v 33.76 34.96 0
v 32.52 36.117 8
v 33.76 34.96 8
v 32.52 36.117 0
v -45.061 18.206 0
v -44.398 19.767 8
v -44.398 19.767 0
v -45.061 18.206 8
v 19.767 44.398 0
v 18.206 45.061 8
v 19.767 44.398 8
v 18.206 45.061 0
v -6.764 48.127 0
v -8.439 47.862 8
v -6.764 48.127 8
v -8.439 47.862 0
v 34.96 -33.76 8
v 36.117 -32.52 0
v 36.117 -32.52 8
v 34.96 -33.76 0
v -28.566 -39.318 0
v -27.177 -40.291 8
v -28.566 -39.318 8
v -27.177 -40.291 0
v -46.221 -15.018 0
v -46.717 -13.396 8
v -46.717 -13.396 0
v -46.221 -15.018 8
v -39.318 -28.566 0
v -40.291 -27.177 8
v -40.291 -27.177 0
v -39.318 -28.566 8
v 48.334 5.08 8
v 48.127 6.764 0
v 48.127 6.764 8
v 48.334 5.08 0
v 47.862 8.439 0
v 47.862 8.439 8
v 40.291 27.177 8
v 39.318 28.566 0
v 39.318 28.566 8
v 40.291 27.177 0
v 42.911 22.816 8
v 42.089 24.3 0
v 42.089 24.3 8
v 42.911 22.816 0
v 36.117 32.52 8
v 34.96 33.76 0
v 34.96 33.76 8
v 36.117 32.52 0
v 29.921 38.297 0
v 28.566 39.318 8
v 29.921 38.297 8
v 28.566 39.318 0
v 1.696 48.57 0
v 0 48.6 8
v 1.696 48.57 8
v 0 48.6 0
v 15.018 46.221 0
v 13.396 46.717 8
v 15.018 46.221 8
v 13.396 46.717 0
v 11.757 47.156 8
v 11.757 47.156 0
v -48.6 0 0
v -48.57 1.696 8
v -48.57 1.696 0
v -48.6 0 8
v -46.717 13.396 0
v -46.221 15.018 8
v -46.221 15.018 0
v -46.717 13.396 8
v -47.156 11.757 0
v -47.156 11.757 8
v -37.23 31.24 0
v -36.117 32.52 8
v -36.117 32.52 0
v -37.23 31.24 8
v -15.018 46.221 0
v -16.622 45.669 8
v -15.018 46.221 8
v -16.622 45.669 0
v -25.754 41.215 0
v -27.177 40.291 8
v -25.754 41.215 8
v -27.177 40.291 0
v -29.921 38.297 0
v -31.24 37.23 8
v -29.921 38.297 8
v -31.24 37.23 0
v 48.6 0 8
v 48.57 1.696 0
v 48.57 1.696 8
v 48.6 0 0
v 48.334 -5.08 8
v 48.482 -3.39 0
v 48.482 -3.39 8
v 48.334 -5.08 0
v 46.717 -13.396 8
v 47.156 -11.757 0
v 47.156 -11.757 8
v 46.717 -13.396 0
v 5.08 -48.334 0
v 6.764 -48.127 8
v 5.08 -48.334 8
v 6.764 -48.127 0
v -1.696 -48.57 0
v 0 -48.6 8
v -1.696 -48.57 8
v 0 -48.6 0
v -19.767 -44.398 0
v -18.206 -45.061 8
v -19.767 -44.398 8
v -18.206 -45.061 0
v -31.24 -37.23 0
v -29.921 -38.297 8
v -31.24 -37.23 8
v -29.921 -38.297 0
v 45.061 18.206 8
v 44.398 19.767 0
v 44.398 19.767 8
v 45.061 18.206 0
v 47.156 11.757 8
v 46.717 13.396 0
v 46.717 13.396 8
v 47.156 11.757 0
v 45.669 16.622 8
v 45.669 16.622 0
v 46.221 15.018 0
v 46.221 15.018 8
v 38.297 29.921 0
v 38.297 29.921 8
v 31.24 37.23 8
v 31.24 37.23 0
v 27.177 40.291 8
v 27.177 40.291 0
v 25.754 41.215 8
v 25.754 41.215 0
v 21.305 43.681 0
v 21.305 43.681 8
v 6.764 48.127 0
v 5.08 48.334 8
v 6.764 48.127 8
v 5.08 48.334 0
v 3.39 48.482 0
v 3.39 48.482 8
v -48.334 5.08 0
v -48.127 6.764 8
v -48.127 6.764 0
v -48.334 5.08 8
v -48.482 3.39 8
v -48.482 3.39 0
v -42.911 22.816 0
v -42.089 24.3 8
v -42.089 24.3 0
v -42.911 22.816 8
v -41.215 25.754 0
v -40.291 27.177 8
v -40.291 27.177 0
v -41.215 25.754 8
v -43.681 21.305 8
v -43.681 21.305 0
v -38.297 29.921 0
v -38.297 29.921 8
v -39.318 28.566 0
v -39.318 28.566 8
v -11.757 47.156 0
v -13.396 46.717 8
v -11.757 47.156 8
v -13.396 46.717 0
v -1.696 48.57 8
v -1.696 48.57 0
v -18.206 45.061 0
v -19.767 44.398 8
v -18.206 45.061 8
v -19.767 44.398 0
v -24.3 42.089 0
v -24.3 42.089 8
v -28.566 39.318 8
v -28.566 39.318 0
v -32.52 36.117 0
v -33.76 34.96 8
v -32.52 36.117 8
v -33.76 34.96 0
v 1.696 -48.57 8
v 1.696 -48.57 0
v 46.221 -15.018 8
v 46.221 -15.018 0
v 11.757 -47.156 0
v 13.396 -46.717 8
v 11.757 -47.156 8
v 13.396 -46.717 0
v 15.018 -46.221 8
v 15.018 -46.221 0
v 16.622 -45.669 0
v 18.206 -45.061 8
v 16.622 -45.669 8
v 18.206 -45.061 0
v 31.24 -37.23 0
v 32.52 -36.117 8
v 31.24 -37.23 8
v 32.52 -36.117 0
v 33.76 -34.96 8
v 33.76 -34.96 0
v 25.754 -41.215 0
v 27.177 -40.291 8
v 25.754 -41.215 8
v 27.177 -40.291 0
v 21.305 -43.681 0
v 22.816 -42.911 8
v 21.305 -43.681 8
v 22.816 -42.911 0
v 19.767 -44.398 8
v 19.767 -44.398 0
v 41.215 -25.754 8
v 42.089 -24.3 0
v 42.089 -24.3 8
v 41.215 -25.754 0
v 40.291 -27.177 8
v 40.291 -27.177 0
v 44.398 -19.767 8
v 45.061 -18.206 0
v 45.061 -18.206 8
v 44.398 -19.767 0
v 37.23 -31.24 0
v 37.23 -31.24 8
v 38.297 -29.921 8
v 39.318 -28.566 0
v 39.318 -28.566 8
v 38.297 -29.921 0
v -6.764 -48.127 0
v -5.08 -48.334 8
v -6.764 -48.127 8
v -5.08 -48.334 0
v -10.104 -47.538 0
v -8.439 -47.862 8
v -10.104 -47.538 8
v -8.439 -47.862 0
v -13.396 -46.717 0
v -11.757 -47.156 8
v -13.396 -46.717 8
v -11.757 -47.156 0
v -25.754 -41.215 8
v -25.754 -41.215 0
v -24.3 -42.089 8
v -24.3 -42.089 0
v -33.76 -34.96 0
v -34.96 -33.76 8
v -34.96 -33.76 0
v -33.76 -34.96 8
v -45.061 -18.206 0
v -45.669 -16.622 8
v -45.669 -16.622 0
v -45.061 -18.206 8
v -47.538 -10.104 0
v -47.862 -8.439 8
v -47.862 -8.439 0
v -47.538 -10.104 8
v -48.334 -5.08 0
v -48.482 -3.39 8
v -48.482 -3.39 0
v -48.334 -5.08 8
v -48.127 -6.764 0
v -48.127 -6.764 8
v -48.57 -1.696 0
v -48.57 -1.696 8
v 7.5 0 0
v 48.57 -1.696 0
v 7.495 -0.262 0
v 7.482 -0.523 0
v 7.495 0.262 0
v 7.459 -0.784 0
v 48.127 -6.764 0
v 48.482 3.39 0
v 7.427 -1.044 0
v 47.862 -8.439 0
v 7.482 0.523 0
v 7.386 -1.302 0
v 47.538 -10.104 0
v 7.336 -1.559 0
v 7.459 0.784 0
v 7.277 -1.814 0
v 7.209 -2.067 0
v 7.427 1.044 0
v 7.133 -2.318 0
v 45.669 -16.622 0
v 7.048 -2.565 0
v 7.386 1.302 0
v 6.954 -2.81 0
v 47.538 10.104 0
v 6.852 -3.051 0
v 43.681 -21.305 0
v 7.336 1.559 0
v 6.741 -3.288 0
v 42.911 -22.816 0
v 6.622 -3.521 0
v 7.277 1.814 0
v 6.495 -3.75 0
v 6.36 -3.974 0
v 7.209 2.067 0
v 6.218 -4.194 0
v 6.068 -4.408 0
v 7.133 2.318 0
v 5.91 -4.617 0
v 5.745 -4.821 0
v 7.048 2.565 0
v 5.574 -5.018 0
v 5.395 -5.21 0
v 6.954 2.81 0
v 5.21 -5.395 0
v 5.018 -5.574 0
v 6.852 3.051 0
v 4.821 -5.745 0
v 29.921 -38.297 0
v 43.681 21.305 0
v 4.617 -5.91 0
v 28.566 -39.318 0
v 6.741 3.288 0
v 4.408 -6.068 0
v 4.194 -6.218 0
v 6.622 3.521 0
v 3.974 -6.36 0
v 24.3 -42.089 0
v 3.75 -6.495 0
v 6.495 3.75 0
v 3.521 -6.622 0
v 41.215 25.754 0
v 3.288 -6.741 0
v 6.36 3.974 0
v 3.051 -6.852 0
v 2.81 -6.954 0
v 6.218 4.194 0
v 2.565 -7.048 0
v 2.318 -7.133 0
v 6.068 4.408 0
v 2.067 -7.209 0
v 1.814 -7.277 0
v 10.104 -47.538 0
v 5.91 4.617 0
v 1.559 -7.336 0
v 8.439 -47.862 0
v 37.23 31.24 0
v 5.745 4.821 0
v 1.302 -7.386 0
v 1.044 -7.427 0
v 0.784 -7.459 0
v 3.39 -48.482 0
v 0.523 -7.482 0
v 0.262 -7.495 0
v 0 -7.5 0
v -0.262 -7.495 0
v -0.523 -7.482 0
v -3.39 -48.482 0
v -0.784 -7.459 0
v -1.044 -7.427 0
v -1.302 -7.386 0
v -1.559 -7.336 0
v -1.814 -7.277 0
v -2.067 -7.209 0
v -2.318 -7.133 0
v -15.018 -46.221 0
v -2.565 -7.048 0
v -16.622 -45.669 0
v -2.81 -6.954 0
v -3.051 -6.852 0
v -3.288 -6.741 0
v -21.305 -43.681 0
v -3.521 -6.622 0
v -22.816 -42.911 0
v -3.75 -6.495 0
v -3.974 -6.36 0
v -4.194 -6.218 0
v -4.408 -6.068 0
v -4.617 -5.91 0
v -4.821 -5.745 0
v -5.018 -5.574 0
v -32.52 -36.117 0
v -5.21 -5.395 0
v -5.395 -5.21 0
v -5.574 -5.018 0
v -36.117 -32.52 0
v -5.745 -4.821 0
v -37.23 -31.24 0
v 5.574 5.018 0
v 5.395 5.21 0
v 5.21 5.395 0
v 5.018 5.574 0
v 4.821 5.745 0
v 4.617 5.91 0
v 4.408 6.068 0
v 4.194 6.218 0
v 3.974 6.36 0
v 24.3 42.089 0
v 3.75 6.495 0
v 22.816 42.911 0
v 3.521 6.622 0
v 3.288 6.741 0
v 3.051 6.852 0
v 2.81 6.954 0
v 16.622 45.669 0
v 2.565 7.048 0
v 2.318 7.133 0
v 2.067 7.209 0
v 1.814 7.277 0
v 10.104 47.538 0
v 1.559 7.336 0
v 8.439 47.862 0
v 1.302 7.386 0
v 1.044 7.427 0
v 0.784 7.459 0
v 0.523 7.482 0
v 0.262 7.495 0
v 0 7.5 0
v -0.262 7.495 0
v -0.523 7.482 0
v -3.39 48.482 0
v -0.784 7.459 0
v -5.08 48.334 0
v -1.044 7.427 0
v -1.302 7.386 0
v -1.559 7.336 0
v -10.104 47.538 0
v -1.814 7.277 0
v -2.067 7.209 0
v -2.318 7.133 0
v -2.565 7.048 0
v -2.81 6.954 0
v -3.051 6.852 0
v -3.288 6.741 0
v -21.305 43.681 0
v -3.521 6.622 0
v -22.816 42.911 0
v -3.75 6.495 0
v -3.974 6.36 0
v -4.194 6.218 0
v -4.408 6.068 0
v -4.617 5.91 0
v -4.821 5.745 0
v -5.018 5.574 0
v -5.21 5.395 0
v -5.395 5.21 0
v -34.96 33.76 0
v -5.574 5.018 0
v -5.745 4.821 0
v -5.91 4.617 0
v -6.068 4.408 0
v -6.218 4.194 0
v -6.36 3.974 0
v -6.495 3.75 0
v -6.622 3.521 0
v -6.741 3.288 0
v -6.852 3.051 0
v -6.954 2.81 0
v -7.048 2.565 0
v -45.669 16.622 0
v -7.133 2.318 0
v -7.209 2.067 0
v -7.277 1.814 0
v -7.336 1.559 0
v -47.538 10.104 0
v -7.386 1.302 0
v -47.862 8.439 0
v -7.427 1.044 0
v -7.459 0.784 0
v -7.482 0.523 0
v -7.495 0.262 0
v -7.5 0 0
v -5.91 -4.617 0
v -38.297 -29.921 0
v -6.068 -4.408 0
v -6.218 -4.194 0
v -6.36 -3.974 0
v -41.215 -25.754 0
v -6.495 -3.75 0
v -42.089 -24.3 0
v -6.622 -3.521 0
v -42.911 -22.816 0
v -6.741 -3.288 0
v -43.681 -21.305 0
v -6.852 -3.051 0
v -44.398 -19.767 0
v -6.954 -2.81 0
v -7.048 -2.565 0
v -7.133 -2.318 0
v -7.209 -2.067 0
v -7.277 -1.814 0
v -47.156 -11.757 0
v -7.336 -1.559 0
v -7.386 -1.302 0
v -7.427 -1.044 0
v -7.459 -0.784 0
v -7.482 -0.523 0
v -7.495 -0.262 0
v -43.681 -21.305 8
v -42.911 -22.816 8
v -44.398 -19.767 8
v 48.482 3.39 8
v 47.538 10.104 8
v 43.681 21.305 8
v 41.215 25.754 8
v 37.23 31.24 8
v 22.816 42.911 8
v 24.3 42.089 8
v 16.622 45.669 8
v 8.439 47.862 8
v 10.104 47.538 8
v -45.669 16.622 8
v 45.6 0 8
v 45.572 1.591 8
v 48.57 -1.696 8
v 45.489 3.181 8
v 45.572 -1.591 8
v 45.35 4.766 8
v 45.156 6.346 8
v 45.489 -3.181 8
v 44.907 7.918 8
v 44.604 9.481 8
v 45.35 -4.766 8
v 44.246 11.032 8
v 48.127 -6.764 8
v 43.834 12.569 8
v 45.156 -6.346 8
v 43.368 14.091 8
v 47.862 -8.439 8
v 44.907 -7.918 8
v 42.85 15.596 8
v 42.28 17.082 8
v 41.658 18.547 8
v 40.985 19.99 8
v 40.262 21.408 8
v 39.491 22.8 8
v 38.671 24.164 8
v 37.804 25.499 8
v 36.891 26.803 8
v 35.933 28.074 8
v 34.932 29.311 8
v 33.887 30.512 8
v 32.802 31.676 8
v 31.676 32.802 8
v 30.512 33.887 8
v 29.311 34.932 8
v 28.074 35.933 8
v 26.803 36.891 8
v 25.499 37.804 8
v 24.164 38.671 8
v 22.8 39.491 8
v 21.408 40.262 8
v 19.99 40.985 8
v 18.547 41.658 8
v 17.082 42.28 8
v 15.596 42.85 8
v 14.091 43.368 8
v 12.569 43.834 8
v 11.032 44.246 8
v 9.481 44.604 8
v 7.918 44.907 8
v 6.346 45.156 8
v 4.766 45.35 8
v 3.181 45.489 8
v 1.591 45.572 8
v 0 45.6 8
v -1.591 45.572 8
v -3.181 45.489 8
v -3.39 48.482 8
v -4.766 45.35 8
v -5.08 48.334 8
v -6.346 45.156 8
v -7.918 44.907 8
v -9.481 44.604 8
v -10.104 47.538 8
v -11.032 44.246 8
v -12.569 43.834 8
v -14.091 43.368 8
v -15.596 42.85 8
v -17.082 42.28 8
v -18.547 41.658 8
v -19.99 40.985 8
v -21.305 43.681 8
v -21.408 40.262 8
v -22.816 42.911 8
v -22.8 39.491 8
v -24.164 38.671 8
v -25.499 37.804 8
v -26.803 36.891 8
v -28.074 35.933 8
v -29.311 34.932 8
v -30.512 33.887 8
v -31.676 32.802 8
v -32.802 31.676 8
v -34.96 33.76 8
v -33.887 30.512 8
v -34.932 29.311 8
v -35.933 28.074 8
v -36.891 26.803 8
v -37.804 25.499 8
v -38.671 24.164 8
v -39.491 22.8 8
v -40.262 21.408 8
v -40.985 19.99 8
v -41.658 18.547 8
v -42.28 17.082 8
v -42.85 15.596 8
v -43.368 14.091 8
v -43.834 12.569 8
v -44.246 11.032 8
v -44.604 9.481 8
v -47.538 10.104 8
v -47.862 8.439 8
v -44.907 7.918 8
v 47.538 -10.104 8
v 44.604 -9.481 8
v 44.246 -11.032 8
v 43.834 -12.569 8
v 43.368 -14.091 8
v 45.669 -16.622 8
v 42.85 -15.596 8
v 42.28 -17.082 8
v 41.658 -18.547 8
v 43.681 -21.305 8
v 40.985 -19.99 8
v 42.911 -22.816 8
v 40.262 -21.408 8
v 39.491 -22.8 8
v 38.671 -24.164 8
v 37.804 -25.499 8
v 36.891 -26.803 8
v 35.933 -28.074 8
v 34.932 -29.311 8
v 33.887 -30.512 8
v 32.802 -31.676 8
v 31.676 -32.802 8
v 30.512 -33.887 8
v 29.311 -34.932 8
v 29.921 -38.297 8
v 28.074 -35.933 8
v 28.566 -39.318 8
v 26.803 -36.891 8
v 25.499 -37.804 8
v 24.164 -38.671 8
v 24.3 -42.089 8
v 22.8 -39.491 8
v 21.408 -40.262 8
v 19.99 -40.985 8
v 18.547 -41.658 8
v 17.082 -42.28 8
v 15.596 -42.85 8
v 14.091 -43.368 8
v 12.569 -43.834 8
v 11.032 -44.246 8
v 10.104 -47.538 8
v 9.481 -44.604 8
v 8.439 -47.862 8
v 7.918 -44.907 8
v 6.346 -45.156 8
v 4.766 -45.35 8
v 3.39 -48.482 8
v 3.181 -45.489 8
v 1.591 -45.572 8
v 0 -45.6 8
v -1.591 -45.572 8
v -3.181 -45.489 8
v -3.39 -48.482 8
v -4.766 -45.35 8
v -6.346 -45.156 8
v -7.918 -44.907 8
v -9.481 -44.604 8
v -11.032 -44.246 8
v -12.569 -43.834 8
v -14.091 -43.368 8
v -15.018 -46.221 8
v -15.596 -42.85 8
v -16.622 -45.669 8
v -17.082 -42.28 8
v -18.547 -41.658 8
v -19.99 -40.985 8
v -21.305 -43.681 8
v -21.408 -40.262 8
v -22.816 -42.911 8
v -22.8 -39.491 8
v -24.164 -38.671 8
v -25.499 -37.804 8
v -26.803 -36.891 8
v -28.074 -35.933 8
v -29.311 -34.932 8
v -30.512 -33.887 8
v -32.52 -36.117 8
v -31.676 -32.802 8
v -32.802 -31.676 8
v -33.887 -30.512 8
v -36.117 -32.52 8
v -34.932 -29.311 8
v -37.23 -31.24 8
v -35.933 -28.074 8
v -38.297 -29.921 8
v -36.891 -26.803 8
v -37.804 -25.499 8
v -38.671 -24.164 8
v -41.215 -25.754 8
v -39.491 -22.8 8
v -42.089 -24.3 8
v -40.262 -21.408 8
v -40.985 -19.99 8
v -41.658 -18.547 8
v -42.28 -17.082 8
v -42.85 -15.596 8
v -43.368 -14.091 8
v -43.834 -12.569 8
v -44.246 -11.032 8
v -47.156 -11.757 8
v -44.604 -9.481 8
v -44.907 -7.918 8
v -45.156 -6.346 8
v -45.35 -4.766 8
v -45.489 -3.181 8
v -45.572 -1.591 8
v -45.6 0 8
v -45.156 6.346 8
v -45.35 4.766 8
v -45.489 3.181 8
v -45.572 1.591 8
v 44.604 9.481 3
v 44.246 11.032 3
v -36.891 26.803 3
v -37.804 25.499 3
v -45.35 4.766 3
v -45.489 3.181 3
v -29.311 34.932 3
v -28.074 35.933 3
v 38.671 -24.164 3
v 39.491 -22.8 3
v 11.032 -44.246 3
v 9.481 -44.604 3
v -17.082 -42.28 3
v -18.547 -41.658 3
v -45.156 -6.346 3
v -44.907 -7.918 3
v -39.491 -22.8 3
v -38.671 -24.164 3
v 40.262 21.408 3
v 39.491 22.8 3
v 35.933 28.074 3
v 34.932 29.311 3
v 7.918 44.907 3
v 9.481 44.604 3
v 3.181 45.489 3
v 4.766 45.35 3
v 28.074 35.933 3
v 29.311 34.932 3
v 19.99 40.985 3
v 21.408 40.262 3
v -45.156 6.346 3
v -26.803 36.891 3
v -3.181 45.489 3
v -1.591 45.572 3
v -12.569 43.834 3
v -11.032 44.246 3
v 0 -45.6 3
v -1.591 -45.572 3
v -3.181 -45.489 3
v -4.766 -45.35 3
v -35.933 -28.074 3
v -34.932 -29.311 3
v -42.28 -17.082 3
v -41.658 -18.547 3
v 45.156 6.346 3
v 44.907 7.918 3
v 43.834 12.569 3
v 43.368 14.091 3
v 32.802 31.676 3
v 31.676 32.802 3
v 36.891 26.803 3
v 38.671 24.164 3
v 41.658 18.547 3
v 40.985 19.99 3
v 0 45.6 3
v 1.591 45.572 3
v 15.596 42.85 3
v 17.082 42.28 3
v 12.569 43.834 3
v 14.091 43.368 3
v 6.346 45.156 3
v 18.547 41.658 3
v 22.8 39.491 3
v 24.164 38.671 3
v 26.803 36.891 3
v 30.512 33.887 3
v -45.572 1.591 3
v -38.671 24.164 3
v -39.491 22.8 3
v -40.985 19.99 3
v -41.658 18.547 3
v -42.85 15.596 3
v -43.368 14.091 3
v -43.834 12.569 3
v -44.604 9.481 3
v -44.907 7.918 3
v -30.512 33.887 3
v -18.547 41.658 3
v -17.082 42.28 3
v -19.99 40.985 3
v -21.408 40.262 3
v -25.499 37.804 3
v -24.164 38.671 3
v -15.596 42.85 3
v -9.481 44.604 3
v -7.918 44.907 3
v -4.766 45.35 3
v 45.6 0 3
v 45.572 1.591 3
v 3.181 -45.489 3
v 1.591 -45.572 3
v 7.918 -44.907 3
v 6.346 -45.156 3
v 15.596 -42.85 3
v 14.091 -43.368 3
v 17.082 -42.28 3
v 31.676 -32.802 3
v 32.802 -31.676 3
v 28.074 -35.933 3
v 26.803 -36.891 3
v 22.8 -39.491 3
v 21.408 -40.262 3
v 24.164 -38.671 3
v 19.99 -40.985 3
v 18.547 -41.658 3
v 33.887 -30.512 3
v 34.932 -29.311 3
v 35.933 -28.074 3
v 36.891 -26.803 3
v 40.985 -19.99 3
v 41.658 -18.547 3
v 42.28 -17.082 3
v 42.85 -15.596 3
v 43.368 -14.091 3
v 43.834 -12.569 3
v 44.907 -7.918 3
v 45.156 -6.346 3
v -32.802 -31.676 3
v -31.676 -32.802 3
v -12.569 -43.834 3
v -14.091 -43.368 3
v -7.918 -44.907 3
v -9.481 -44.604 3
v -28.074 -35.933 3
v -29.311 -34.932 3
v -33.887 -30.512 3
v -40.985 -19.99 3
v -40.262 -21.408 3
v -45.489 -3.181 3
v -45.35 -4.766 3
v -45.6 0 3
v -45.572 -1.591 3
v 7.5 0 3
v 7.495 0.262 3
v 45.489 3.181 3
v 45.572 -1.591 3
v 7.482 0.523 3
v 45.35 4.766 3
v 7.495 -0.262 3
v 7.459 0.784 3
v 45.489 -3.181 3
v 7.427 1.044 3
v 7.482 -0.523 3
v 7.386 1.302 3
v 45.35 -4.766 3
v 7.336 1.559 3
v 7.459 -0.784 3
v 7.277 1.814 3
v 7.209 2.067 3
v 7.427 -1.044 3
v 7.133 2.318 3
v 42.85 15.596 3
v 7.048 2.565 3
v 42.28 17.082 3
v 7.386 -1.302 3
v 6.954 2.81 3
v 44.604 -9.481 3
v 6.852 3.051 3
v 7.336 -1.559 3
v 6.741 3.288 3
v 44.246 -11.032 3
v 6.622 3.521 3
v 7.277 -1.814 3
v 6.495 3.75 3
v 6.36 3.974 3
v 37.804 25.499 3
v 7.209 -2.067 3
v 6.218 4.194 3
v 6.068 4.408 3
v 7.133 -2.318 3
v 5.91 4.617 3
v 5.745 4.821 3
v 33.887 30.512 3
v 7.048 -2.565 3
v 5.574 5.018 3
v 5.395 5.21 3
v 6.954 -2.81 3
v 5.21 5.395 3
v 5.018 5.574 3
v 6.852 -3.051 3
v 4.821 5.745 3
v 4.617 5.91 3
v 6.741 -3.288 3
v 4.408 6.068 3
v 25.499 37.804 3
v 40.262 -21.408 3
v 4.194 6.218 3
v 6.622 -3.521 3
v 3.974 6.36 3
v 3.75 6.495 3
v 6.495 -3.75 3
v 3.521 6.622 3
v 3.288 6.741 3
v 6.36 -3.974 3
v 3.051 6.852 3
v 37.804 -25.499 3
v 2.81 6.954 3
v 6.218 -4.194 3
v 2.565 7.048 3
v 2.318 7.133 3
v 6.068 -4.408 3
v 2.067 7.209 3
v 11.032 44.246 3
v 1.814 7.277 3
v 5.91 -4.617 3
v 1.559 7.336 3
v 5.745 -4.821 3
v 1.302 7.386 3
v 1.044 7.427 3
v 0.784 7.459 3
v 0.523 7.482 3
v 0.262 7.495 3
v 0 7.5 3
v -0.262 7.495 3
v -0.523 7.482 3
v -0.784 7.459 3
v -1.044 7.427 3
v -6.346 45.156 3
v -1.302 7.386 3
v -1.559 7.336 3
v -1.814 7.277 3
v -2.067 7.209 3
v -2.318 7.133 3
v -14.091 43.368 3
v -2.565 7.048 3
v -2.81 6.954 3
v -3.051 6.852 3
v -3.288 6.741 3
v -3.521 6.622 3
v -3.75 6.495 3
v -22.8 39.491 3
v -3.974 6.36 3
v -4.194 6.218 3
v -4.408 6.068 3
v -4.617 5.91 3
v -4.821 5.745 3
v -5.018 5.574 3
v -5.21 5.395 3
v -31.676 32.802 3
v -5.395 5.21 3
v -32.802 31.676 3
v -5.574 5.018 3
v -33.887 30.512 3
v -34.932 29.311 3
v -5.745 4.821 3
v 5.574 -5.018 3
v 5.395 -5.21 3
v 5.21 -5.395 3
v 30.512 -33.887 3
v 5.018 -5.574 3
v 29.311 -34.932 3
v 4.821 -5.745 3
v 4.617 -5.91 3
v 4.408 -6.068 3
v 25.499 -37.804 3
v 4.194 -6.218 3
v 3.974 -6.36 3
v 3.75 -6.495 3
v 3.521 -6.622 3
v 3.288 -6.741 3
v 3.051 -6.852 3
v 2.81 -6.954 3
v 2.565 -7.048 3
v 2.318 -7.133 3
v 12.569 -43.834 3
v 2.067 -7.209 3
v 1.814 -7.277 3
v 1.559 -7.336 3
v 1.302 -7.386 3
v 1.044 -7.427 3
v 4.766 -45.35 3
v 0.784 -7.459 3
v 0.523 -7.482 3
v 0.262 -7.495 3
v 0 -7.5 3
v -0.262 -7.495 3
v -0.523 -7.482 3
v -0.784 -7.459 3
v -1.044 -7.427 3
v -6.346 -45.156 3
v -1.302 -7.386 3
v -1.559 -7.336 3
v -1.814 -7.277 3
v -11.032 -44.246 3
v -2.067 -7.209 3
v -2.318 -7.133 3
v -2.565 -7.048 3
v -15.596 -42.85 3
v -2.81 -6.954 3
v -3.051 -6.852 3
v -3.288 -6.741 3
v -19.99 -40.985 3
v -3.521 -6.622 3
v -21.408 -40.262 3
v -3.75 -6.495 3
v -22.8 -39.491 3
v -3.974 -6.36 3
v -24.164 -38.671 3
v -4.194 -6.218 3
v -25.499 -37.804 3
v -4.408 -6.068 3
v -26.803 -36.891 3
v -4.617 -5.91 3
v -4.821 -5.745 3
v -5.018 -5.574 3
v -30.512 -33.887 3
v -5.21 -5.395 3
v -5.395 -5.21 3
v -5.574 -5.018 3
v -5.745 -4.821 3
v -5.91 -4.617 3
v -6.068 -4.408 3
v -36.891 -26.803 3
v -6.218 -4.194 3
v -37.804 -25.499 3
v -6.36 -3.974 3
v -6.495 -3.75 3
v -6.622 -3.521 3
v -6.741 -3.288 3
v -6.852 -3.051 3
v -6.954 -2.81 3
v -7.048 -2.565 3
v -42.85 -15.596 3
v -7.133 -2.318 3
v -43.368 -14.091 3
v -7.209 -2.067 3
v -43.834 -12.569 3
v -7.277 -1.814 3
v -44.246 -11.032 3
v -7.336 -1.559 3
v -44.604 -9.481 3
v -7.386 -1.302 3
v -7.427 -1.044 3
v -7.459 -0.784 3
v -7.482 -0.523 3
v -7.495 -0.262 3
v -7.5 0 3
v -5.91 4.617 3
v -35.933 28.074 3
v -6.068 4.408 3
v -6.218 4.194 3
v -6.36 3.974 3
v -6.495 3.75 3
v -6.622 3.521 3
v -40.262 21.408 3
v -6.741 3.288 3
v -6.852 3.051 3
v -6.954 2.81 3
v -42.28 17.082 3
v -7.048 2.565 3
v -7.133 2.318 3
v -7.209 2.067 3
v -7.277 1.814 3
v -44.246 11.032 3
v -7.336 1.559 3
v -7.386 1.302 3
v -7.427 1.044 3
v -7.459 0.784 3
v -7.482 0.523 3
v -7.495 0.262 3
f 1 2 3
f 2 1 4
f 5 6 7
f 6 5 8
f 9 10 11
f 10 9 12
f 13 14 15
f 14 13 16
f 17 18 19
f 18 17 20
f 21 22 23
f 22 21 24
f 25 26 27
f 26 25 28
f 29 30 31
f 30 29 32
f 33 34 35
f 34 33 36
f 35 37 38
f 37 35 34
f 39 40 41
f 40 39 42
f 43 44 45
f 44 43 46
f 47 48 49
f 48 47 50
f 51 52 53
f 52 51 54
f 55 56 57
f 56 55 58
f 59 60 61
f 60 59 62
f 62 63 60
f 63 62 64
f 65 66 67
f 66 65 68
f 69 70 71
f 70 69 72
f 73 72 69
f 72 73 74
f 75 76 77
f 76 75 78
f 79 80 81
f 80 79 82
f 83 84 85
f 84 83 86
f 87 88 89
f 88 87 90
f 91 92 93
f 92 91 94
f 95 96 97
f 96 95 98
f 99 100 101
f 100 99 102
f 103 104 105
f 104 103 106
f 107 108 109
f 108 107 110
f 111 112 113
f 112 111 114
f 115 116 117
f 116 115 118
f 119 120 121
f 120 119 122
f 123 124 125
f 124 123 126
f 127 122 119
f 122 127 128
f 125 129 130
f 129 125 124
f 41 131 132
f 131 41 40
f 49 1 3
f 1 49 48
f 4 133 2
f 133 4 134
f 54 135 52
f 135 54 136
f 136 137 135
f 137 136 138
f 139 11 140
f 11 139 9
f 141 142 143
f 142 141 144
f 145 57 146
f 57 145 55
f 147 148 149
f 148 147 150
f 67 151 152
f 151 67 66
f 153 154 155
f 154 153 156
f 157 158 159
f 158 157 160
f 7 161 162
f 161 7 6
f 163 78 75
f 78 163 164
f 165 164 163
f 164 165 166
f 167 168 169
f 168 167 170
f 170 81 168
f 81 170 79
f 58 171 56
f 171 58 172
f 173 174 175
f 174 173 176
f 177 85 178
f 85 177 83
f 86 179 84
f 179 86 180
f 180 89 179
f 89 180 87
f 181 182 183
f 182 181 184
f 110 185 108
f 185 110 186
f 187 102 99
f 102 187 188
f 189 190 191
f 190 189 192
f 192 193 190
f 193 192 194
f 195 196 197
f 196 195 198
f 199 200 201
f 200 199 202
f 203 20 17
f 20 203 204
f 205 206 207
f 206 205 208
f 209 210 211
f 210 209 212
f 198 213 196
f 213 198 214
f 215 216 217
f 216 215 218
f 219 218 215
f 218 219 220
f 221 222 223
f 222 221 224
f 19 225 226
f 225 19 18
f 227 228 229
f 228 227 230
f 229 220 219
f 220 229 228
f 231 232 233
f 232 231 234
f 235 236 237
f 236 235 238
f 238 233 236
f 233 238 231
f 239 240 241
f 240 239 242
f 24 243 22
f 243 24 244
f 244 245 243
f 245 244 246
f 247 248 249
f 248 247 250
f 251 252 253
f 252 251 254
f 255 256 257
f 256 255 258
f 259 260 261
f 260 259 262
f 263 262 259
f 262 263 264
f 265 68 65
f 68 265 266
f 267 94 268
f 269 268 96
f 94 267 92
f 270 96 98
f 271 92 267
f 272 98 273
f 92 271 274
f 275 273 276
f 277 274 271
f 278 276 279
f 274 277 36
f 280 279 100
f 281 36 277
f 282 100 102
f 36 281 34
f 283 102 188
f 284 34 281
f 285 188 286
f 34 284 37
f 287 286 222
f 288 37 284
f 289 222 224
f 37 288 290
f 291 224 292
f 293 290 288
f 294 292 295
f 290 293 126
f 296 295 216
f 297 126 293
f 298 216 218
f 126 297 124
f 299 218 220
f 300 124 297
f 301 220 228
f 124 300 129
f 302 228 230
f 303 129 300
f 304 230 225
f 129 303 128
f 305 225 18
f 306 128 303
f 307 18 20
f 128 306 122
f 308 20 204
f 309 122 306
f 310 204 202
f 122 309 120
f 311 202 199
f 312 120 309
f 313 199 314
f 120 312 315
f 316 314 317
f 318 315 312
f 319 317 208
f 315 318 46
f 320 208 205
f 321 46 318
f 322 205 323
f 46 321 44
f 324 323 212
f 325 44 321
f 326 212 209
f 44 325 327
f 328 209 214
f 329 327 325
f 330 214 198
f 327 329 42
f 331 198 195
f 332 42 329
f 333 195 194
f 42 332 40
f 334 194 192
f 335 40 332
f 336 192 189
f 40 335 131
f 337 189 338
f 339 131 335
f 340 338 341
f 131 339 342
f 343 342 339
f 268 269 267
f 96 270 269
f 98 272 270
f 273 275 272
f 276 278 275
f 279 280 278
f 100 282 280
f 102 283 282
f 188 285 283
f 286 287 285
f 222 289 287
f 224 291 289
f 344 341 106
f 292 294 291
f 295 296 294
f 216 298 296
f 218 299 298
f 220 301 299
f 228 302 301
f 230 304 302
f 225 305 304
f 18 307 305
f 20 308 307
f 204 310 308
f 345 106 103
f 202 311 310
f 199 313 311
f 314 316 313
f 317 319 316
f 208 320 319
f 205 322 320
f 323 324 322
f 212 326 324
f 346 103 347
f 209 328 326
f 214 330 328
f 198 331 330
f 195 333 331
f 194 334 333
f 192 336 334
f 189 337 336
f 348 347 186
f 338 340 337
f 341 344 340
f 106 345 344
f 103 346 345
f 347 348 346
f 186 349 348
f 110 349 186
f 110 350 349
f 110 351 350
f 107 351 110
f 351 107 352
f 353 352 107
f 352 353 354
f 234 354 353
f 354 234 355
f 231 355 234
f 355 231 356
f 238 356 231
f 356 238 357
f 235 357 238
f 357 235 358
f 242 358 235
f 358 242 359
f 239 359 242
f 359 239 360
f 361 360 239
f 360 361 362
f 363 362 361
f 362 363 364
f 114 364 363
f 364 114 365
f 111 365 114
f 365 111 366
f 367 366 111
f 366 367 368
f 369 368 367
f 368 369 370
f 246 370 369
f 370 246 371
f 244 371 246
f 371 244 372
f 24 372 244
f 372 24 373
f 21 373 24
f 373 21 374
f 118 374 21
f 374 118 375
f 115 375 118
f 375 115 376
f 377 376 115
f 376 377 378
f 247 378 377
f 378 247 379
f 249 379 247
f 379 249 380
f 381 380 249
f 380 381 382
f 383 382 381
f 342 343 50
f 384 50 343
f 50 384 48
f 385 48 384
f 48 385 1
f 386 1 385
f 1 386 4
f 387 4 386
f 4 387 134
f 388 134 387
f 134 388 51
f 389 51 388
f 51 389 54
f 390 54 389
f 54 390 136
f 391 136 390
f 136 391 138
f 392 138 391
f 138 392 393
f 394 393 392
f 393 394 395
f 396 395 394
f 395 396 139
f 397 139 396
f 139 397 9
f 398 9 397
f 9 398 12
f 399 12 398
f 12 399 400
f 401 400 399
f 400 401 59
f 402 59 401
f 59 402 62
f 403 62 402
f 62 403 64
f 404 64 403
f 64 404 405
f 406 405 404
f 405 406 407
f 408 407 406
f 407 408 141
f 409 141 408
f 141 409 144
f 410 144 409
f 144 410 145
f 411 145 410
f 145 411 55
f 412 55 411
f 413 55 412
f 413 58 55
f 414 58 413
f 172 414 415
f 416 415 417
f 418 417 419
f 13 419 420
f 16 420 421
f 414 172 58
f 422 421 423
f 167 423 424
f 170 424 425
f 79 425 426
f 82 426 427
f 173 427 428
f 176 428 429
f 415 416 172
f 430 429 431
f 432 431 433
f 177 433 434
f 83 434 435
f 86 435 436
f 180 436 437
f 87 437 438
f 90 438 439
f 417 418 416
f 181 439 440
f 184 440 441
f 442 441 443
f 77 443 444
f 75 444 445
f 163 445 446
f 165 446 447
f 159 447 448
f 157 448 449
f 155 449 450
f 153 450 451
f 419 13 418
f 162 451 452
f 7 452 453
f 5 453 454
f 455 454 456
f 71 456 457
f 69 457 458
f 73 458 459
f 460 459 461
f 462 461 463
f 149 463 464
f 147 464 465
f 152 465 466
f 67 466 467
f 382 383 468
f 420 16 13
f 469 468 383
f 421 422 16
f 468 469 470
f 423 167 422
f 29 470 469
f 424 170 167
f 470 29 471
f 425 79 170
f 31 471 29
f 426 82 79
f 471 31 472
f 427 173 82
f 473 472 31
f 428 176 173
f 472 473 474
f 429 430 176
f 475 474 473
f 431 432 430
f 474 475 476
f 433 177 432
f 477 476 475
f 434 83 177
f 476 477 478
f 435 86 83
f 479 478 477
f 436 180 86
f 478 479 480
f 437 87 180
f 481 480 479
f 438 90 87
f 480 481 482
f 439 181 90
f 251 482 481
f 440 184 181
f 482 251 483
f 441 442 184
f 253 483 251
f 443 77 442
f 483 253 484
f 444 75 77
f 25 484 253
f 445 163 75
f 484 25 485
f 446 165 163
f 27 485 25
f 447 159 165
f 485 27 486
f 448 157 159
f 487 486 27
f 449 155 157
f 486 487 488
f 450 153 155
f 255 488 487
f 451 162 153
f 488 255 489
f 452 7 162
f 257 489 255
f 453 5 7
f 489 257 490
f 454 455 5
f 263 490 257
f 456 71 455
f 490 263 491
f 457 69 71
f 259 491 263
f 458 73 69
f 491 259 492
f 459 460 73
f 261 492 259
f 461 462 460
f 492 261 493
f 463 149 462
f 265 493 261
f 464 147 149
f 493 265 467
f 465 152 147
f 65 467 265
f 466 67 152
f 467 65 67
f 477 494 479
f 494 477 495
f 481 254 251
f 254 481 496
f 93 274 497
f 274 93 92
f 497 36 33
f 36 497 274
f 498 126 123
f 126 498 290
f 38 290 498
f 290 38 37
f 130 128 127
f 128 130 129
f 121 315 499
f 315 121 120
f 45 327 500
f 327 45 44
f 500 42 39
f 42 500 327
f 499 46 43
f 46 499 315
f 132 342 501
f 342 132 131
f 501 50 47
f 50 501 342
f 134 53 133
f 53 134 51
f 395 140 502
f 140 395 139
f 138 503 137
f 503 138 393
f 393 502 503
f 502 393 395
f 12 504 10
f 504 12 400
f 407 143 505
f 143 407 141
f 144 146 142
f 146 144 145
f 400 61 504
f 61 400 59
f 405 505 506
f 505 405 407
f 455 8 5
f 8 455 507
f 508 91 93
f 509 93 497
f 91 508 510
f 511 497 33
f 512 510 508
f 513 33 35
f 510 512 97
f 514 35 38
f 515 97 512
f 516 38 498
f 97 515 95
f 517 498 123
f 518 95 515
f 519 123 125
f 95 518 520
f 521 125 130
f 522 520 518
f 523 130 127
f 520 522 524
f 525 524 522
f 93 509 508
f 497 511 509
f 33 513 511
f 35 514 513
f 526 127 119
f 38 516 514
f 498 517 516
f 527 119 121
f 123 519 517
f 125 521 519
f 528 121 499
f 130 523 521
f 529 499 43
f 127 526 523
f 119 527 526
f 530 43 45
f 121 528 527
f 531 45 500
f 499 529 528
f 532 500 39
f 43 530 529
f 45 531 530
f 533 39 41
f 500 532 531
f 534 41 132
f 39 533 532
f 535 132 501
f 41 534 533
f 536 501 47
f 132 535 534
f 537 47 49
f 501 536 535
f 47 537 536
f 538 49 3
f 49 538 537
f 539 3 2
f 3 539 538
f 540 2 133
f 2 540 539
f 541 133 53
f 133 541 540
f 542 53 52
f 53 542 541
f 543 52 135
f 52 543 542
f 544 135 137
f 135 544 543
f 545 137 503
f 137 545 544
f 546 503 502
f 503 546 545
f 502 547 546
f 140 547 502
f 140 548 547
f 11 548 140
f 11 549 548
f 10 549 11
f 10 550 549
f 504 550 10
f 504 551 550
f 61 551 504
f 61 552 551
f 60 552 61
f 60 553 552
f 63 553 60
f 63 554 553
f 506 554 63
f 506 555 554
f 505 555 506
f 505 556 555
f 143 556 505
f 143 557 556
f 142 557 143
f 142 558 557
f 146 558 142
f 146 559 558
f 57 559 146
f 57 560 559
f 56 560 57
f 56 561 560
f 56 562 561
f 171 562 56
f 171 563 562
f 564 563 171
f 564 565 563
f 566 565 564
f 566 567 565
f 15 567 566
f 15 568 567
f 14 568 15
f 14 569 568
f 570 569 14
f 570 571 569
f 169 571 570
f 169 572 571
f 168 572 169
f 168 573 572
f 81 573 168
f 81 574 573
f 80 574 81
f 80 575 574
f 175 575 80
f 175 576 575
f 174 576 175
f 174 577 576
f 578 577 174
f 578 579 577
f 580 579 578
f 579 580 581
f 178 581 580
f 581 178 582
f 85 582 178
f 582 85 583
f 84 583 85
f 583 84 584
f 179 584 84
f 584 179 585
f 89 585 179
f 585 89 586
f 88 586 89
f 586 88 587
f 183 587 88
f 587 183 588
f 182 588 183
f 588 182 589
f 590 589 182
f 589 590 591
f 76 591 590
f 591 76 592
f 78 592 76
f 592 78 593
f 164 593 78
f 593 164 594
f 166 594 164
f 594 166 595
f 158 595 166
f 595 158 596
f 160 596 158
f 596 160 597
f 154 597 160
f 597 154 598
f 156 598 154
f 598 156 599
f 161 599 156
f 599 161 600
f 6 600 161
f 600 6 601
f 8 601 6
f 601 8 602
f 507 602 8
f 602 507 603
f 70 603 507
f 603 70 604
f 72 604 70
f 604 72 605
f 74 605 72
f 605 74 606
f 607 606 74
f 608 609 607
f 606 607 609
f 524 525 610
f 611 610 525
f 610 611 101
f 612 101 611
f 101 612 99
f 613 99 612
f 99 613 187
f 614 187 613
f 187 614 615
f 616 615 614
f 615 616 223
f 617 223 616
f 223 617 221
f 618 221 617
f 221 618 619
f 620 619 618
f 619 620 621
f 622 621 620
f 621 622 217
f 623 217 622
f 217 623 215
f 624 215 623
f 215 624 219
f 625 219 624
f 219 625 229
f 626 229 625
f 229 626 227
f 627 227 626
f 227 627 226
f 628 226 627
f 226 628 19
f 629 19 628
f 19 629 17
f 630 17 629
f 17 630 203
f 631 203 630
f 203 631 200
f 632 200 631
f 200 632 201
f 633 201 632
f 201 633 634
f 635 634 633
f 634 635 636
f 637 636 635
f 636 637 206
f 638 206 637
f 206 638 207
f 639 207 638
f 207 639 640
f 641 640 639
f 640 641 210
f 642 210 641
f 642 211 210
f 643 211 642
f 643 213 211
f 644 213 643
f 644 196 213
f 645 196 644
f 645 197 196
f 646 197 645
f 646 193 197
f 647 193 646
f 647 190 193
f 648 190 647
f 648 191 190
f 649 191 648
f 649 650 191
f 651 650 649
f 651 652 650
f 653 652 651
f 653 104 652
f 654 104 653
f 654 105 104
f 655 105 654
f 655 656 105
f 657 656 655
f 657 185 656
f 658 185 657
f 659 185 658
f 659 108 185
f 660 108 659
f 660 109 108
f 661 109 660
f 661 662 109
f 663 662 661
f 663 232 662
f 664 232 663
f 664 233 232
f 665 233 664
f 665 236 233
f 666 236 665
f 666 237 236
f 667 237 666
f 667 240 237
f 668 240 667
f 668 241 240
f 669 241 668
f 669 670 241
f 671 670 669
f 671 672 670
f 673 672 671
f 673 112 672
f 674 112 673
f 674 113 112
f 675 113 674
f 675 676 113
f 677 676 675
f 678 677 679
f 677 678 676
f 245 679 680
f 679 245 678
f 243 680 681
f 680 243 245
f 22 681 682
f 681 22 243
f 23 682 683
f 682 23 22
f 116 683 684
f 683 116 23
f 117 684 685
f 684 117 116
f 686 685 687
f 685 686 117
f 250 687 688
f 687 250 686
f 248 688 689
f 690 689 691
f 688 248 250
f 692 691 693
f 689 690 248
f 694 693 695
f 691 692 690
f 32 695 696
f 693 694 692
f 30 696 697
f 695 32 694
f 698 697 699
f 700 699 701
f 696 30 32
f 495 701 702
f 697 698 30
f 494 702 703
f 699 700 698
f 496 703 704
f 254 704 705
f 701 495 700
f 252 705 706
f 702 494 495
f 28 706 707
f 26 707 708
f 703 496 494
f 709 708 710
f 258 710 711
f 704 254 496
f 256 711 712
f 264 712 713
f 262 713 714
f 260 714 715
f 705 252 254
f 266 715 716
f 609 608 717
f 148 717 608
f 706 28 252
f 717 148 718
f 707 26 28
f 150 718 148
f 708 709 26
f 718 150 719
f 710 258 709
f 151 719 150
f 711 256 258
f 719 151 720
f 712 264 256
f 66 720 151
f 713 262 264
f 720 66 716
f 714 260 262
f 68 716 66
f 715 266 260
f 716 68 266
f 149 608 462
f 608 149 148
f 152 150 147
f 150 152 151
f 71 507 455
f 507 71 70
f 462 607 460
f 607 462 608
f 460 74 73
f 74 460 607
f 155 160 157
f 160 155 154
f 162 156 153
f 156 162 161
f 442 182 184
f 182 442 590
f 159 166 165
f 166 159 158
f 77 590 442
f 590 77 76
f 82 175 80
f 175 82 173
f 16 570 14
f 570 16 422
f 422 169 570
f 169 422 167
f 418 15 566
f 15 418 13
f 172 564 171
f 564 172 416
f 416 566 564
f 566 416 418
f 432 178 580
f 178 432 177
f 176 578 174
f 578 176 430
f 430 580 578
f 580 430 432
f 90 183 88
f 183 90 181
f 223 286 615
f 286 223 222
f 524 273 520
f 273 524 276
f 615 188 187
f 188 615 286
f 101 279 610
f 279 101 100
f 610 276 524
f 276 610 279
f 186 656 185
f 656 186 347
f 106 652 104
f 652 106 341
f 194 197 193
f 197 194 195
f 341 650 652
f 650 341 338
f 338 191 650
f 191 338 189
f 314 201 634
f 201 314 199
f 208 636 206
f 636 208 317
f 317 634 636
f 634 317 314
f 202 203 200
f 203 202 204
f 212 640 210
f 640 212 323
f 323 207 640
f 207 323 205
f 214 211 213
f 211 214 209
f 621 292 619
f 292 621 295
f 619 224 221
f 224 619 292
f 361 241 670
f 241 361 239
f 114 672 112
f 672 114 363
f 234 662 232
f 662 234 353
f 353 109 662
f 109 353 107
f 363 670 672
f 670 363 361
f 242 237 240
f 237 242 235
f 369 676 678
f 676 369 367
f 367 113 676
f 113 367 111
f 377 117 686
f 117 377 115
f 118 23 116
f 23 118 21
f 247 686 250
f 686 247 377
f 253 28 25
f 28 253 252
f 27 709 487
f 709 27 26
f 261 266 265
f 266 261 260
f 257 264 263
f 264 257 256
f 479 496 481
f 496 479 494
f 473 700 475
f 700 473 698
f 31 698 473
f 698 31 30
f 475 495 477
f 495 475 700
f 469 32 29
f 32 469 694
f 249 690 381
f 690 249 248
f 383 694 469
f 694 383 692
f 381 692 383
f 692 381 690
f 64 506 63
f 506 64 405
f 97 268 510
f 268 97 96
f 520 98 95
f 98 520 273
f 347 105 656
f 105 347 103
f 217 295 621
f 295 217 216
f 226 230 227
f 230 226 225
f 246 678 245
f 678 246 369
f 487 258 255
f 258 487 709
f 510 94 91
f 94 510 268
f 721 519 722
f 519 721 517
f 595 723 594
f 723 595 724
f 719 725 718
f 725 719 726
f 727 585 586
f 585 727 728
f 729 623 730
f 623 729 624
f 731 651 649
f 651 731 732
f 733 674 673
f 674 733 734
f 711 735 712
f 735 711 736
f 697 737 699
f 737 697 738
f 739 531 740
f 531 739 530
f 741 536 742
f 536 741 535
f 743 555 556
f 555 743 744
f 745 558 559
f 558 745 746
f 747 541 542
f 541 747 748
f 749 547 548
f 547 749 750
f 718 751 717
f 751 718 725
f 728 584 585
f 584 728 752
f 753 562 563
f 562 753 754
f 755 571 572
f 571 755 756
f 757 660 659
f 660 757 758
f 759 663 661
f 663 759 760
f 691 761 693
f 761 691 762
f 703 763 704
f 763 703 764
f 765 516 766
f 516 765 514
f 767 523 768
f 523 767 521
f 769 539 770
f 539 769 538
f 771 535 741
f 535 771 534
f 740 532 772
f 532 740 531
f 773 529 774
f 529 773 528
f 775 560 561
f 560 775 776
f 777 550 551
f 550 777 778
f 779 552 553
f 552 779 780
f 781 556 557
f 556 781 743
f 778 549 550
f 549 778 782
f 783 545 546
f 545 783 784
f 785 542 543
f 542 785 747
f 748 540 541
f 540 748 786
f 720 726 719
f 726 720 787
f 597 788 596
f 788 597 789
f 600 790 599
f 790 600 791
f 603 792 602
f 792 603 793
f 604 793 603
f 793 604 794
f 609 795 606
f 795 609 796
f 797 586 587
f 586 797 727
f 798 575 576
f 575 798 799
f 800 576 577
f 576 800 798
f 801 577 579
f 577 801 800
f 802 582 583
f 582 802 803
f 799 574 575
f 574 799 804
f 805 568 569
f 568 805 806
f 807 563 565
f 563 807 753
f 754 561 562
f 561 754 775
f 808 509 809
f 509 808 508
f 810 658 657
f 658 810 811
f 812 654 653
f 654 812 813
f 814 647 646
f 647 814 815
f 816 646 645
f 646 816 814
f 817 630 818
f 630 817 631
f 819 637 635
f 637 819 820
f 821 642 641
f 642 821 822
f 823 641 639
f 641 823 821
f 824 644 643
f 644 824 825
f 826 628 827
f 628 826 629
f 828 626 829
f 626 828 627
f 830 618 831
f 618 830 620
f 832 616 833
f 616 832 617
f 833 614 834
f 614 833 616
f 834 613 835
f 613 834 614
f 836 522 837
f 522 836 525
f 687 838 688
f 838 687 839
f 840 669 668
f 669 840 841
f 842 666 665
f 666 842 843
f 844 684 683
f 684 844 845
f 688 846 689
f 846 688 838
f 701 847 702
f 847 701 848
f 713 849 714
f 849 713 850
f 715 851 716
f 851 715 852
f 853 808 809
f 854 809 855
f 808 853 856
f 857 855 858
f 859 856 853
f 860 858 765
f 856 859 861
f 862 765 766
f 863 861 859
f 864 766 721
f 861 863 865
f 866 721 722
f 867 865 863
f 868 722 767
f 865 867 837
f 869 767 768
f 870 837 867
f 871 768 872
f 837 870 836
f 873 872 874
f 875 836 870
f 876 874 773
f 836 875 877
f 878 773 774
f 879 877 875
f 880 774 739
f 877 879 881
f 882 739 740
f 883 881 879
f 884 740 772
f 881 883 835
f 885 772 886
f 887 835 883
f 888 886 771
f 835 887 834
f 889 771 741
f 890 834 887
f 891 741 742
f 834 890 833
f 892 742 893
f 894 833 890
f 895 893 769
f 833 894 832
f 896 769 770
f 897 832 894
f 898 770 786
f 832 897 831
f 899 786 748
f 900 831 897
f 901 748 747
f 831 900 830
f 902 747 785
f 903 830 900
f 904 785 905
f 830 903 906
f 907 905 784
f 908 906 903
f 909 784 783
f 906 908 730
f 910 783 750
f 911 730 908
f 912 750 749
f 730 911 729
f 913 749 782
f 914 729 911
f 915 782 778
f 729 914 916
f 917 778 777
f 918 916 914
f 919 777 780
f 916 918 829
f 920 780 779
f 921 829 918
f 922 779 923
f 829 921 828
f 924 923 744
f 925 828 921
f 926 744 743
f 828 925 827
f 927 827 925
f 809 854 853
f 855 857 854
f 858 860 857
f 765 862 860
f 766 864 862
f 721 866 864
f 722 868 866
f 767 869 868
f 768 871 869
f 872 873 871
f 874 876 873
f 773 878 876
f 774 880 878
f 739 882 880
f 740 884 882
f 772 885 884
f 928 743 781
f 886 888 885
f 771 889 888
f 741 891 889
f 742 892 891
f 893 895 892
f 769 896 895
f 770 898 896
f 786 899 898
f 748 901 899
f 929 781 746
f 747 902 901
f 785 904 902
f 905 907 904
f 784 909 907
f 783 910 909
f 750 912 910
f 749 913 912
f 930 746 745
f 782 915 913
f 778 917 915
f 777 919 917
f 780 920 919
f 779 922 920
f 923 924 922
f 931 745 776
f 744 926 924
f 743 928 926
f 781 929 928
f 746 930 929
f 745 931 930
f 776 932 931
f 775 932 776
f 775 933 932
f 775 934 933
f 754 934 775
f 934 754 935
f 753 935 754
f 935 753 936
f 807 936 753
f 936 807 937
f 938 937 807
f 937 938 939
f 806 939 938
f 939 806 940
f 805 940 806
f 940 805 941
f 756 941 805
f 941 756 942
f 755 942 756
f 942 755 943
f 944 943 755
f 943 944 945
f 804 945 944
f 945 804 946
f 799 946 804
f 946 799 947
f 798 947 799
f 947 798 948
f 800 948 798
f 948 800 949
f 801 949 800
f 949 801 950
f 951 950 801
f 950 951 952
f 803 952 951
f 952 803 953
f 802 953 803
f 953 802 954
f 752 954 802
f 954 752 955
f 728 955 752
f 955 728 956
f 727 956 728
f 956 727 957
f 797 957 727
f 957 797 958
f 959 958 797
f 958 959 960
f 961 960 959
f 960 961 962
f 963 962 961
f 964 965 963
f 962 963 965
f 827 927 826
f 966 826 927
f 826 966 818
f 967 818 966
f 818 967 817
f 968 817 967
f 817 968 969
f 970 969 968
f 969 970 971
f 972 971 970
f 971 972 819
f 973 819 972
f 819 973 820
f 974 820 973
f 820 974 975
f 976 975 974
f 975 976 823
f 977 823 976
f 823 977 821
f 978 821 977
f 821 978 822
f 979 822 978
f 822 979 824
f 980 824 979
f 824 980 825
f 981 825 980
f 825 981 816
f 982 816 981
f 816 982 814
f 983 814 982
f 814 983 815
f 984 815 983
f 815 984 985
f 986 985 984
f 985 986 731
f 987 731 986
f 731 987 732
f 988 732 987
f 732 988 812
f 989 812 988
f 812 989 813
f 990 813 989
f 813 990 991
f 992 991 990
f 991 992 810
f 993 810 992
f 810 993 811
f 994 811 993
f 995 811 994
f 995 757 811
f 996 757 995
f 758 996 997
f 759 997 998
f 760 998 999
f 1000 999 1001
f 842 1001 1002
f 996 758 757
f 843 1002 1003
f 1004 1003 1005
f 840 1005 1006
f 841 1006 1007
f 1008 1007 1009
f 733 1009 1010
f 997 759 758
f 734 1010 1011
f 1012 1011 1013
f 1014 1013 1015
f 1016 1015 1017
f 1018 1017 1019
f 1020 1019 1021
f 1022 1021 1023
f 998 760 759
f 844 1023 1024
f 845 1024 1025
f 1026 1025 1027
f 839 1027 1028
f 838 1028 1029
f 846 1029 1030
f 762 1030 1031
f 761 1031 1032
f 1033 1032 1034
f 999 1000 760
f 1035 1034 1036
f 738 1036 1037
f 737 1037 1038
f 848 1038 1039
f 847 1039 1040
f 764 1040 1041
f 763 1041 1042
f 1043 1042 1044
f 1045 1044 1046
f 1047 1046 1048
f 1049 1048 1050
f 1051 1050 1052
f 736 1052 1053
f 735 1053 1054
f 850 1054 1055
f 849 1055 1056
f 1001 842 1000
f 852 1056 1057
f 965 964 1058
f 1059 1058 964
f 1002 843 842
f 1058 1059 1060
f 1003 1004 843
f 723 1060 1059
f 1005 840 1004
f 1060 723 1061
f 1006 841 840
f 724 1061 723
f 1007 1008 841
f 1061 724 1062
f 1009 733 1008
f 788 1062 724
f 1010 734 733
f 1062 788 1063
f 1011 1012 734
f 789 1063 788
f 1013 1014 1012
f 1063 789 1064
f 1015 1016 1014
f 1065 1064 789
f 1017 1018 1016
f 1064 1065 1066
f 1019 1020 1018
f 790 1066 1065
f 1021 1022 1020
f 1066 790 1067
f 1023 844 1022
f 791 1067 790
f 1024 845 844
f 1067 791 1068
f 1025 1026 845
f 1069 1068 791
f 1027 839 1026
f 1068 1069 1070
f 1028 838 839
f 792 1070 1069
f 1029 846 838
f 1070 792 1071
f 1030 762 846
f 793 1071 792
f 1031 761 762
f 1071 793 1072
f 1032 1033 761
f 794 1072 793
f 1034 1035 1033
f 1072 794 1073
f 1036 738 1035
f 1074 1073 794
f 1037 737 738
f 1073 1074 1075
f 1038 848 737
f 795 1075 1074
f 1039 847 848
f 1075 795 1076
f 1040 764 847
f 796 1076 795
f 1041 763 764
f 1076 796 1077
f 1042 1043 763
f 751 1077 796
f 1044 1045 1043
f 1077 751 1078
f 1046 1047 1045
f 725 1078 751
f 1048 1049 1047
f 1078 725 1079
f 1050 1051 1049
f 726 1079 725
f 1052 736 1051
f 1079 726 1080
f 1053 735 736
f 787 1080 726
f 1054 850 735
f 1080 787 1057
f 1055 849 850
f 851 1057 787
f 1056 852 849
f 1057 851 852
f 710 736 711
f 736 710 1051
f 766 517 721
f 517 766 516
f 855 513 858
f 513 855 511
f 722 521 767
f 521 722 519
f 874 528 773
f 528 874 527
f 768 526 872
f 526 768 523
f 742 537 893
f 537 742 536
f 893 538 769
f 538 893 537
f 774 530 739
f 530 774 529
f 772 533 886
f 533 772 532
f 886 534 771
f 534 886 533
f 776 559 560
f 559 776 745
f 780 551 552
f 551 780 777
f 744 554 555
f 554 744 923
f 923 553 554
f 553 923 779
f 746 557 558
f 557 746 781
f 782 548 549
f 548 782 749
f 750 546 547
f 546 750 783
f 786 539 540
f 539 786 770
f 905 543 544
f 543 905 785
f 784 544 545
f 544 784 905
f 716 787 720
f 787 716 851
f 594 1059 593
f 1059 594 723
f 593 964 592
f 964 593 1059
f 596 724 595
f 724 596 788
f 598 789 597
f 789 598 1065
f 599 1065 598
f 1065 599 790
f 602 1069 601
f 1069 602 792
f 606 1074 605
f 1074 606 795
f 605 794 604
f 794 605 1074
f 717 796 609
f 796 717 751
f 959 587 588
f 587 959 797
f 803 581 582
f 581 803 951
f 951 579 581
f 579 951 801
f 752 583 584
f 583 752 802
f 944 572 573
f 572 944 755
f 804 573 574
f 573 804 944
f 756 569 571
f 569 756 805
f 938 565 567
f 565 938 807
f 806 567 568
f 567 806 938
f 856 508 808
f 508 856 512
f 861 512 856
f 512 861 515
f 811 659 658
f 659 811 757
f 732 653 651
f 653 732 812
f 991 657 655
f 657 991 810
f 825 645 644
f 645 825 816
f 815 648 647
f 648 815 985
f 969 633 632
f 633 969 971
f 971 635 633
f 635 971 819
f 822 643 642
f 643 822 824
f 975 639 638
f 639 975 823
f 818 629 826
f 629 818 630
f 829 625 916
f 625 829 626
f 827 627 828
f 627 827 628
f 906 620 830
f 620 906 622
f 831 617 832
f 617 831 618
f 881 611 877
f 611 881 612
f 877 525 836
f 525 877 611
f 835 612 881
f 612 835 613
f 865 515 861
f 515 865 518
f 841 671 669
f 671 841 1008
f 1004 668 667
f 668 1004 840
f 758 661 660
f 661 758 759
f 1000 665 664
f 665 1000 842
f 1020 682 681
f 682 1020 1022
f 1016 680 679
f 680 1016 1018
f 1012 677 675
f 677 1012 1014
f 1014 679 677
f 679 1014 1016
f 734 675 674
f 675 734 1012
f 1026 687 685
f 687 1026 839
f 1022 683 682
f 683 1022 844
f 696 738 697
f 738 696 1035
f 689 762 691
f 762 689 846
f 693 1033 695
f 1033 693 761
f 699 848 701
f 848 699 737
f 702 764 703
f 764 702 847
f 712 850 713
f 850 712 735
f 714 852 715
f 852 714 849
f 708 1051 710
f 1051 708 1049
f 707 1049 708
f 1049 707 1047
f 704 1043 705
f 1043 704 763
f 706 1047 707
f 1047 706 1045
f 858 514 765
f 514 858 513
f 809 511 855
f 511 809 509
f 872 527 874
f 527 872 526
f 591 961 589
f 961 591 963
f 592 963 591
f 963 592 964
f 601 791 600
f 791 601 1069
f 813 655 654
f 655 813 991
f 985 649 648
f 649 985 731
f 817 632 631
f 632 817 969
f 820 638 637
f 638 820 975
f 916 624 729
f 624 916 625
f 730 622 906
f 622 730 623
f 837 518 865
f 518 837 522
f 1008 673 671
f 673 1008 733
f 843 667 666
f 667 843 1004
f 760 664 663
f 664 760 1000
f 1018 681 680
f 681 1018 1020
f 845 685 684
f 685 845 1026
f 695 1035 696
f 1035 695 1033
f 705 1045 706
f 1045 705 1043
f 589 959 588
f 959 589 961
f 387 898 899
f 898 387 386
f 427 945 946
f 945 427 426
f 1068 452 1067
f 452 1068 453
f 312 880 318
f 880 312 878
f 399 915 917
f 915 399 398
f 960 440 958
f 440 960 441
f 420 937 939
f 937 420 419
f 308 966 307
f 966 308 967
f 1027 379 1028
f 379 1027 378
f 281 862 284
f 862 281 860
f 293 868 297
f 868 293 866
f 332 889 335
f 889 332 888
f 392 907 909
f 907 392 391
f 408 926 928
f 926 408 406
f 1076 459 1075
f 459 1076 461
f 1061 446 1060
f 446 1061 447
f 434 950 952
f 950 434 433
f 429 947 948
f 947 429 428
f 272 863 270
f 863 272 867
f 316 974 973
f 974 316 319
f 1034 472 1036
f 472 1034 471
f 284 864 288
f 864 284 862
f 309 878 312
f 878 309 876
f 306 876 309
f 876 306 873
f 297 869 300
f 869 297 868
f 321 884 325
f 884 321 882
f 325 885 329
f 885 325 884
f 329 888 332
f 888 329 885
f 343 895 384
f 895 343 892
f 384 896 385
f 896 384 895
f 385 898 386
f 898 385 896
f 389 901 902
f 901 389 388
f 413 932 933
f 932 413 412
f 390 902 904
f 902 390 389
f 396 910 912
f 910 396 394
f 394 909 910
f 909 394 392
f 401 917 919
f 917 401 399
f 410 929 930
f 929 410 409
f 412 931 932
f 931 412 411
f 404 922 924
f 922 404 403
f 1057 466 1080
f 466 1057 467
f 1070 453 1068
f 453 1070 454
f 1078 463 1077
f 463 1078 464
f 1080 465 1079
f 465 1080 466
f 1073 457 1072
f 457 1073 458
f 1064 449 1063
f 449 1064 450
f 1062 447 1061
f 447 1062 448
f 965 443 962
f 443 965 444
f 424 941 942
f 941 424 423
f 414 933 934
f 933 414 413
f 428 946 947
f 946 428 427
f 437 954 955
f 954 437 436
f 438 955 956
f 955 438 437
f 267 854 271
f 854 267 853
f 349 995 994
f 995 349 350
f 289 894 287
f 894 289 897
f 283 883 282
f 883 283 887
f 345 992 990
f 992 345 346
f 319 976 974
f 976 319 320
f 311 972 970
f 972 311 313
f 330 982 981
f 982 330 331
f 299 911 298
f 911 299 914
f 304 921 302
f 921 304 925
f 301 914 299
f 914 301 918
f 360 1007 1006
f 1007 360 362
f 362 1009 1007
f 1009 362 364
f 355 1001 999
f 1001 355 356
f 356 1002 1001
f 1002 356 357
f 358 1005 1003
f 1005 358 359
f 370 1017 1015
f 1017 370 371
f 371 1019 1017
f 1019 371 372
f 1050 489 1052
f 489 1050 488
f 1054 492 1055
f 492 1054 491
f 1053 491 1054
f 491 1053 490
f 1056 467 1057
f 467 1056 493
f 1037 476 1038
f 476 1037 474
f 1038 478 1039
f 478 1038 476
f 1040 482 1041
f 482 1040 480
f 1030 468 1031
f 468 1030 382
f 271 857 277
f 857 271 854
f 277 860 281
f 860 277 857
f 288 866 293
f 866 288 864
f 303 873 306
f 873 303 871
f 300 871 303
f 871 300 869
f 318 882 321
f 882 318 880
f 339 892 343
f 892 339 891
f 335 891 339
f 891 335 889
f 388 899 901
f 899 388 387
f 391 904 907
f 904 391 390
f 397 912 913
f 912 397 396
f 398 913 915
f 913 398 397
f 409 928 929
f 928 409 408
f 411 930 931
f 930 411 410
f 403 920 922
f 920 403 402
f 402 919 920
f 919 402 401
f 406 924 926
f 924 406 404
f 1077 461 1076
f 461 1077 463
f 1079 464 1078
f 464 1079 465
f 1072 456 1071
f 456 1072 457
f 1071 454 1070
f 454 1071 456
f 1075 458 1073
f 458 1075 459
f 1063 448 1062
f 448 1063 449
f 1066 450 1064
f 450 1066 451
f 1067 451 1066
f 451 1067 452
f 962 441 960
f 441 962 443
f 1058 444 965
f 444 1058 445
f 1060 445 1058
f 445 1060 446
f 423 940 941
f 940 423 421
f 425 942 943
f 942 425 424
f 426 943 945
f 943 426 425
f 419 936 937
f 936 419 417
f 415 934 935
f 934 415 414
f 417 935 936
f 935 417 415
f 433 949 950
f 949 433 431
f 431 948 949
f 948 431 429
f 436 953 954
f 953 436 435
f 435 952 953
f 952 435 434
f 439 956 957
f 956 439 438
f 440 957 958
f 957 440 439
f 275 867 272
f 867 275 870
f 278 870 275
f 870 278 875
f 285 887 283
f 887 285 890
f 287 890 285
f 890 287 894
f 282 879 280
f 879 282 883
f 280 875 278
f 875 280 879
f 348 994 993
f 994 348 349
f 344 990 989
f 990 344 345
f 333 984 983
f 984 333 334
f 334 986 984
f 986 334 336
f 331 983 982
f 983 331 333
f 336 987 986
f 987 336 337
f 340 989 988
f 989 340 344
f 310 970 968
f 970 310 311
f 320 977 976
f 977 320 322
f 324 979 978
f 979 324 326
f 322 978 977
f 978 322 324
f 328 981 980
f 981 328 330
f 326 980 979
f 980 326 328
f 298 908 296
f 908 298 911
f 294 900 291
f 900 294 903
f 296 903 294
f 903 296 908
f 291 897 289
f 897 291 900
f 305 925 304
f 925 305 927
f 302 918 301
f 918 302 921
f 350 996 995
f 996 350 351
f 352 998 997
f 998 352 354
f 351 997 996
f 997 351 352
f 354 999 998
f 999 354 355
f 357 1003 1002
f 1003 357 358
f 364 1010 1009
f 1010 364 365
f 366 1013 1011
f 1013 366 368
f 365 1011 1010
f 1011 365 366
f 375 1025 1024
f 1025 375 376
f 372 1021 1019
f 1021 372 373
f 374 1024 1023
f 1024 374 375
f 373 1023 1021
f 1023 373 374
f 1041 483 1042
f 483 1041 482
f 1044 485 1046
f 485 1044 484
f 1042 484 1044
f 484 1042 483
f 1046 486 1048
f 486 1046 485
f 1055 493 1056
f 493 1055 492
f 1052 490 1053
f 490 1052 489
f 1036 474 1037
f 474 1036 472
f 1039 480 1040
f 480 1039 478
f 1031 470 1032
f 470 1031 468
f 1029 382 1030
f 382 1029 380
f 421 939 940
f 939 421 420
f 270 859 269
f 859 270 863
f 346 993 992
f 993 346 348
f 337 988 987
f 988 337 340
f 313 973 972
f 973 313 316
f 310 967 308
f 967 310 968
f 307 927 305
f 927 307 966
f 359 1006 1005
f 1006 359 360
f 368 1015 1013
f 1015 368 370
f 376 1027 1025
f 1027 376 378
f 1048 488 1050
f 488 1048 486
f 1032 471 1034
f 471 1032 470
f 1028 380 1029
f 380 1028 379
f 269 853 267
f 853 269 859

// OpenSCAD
pad = 1; //0.1; //Padding para abrir em cima
hl = 3+5; //altura lateral
brd = 3; //borda - 3mm
rt = (91.20 + (2*brd)) / 2; //raio total + 2* borda_3mm
smooth = 180; //faces do cilindro
rf = 15 / 2; //raio furo central

difference() {
    difference() {
    color("red")
	cylinder(hl,rt,rt,center=false,$fn=smooth);
    
    color("green")
	translate([0,0,brd])
	cylinder(hl-brd+pad,rt-brd,rt-brd,center=false,$fn=smooth);
    }

    //furo central
    color("black")
	translate([0,0,-pad])
    cylinder(h=hl+(2*pad),r=rf,center=true,$fn=smooth);
}
